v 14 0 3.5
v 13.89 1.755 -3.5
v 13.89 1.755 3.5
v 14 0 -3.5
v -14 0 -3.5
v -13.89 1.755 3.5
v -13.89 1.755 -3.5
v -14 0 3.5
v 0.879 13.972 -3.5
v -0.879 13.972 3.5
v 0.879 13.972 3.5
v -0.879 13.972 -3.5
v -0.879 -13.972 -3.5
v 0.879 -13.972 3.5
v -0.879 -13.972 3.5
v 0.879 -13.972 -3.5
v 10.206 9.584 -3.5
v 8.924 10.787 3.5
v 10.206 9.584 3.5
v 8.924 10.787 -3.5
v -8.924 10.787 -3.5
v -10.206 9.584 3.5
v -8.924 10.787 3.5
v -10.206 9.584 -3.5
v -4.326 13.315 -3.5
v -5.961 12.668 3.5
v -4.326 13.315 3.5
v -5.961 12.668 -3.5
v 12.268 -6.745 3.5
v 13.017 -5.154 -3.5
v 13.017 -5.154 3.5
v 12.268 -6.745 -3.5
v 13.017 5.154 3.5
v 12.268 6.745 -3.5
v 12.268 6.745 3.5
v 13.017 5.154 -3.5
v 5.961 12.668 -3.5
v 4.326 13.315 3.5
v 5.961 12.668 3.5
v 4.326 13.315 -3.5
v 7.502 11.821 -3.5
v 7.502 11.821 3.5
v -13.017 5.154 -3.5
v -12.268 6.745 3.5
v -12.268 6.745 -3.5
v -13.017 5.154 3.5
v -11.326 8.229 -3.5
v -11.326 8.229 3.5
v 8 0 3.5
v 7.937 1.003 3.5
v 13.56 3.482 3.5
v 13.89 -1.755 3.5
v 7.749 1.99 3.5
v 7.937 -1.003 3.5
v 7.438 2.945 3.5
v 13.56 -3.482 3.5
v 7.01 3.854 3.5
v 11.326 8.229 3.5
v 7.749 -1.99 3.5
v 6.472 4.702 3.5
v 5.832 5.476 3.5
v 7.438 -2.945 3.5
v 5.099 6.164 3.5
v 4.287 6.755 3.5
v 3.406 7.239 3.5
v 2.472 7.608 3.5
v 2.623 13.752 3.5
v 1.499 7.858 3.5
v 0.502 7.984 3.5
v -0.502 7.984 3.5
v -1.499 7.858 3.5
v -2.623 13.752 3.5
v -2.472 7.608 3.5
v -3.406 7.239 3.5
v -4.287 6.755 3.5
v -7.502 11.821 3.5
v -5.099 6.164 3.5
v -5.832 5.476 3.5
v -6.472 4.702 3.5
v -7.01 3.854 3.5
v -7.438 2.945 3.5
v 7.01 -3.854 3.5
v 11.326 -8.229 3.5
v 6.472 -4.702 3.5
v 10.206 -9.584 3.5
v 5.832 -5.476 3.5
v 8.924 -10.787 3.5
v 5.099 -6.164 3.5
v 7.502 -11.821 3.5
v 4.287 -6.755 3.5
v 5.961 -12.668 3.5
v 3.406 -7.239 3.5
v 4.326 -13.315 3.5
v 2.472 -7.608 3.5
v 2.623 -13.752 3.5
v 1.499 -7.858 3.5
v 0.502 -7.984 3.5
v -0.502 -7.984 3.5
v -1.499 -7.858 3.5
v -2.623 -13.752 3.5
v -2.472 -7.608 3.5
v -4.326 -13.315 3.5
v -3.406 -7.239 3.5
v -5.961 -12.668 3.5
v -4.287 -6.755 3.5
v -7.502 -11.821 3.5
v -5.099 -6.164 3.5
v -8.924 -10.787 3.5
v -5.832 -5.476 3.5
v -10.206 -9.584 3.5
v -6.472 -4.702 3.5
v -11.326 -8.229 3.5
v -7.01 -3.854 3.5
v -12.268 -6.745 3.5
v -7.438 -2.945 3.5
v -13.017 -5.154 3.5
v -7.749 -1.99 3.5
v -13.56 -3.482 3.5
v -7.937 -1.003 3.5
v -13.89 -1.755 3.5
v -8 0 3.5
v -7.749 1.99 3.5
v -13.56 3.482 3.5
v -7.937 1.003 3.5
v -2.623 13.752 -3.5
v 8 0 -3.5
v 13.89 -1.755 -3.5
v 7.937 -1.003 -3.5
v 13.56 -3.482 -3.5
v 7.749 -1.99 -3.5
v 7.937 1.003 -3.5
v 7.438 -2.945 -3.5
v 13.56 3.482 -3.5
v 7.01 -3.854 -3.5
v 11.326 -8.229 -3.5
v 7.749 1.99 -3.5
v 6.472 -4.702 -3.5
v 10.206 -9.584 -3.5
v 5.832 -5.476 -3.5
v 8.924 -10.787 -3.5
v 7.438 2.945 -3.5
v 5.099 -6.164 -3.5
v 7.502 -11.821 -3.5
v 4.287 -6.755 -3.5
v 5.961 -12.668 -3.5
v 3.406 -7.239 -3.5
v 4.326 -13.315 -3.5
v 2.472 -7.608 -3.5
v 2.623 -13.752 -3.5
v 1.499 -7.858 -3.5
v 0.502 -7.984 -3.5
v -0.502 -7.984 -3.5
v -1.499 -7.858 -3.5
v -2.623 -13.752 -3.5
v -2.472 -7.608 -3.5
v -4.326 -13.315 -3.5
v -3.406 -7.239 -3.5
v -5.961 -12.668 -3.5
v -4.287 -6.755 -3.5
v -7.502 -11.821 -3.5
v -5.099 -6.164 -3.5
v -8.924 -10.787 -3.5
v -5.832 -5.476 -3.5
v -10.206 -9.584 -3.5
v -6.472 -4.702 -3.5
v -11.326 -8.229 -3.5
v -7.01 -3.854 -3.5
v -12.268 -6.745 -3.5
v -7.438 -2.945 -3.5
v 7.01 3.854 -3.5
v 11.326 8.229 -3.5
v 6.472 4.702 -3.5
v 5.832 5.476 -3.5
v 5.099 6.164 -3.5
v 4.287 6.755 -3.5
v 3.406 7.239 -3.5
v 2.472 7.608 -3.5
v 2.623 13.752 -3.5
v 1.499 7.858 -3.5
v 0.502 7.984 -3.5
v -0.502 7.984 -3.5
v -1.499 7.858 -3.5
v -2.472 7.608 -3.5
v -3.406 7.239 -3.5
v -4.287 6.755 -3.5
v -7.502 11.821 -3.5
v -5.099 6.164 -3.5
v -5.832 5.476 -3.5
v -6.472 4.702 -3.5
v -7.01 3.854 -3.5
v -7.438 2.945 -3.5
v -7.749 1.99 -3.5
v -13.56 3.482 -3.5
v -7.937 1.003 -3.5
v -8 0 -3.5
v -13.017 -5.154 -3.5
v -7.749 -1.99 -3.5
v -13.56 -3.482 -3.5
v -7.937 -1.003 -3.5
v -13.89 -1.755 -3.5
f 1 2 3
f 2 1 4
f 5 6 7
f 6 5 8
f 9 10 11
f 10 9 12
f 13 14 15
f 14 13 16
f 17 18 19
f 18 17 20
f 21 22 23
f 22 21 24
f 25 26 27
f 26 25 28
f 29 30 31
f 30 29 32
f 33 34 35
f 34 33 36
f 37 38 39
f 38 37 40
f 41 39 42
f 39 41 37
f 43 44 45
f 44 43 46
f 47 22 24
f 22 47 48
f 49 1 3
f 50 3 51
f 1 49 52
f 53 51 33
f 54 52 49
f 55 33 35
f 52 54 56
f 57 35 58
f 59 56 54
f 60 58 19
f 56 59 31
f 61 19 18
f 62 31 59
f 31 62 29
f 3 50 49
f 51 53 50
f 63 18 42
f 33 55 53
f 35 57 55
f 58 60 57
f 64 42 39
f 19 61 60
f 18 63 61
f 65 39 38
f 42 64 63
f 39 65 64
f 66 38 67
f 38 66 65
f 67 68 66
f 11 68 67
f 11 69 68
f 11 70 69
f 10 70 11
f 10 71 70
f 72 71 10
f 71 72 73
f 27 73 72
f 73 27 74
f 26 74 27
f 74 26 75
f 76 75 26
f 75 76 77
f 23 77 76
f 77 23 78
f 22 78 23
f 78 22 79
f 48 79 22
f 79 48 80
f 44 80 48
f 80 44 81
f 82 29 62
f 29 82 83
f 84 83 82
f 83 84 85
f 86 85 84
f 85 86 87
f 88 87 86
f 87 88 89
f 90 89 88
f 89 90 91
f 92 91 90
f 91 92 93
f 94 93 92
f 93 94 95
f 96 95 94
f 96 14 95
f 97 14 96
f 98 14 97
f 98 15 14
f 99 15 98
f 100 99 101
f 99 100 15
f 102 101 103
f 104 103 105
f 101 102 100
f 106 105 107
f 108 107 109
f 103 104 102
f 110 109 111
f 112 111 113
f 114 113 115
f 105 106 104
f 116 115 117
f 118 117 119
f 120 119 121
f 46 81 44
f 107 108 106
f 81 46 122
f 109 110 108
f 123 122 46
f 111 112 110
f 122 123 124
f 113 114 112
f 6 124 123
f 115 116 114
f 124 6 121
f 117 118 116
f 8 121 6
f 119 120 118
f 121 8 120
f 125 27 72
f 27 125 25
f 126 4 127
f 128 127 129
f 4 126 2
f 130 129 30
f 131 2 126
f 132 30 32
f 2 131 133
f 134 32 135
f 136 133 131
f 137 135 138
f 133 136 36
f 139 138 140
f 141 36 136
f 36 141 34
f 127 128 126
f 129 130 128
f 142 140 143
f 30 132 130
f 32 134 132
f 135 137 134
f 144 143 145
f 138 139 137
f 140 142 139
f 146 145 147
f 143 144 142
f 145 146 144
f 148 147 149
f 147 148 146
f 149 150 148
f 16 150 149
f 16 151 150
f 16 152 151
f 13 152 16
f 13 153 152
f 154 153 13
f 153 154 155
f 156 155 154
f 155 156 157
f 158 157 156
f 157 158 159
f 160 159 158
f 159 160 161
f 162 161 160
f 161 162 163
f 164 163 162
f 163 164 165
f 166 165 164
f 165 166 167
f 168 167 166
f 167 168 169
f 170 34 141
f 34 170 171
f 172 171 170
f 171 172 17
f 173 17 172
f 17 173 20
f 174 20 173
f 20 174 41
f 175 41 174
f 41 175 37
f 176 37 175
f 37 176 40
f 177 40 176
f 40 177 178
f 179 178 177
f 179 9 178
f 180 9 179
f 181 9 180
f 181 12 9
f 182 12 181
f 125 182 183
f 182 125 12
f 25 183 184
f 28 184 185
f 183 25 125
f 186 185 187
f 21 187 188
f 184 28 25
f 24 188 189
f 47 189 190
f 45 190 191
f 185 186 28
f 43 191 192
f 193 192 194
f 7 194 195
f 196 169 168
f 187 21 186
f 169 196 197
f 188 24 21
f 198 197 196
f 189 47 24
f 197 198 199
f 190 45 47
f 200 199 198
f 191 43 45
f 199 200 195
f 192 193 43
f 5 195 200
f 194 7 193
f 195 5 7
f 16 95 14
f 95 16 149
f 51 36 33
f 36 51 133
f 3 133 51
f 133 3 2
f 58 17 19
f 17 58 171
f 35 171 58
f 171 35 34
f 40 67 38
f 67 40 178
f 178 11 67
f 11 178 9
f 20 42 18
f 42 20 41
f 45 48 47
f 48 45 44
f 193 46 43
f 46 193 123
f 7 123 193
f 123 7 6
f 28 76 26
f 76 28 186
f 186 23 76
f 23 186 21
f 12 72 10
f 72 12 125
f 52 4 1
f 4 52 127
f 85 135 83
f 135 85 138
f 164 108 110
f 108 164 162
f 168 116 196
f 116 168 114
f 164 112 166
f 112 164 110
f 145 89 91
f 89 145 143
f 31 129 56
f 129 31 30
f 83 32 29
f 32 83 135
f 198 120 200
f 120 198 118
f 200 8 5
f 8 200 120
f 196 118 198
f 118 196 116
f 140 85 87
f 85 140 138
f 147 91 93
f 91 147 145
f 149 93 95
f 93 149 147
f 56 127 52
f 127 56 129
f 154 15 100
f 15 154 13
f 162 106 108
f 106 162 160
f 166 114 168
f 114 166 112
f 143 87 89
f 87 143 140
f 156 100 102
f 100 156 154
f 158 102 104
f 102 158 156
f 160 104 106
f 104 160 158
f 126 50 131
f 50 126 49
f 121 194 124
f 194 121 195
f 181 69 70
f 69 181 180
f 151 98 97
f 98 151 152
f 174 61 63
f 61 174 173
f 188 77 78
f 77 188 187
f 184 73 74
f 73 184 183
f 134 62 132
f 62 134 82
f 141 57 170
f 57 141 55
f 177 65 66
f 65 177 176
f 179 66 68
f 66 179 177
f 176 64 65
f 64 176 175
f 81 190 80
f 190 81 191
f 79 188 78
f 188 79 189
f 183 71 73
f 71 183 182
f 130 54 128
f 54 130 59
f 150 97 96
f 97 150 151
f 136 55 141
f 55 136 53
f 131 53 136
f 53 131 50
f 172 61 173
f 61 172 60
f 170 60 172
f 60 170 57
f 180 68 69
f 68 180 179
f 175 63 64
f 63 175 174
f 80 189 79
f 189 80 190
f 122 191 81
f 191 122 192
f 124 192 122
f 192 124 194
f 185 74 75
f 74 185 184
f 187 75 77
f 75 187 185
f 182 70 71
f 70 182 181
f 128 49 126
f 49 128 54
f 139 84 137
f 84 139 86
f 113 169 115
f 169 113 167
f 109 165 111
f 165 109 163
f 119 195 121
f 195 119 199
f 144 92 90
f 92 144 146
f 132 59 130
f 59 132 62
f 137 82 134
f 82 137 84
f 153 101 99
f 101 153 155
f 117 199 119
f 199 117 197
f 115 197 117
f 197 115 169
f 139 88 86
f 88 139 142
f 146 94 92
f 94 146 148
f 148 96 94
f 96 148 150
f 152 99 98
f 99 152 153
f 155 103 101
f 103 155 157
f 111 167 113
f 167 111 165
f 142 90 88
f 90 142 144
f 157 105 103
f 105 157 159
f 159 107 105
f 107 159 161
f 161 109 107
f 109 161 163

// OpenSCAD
$fn = 50;


difference() {
	union() {
		translate(v = [0, 0, -3.5000000000]) {
			cylinder(h = 7, r = 14.0000000000);
		}
	}
	union() {
		translate(v = [0, 0, -100.0000000000]) {
			cylinder(h = 200, r = 8);
		}
	}
}
